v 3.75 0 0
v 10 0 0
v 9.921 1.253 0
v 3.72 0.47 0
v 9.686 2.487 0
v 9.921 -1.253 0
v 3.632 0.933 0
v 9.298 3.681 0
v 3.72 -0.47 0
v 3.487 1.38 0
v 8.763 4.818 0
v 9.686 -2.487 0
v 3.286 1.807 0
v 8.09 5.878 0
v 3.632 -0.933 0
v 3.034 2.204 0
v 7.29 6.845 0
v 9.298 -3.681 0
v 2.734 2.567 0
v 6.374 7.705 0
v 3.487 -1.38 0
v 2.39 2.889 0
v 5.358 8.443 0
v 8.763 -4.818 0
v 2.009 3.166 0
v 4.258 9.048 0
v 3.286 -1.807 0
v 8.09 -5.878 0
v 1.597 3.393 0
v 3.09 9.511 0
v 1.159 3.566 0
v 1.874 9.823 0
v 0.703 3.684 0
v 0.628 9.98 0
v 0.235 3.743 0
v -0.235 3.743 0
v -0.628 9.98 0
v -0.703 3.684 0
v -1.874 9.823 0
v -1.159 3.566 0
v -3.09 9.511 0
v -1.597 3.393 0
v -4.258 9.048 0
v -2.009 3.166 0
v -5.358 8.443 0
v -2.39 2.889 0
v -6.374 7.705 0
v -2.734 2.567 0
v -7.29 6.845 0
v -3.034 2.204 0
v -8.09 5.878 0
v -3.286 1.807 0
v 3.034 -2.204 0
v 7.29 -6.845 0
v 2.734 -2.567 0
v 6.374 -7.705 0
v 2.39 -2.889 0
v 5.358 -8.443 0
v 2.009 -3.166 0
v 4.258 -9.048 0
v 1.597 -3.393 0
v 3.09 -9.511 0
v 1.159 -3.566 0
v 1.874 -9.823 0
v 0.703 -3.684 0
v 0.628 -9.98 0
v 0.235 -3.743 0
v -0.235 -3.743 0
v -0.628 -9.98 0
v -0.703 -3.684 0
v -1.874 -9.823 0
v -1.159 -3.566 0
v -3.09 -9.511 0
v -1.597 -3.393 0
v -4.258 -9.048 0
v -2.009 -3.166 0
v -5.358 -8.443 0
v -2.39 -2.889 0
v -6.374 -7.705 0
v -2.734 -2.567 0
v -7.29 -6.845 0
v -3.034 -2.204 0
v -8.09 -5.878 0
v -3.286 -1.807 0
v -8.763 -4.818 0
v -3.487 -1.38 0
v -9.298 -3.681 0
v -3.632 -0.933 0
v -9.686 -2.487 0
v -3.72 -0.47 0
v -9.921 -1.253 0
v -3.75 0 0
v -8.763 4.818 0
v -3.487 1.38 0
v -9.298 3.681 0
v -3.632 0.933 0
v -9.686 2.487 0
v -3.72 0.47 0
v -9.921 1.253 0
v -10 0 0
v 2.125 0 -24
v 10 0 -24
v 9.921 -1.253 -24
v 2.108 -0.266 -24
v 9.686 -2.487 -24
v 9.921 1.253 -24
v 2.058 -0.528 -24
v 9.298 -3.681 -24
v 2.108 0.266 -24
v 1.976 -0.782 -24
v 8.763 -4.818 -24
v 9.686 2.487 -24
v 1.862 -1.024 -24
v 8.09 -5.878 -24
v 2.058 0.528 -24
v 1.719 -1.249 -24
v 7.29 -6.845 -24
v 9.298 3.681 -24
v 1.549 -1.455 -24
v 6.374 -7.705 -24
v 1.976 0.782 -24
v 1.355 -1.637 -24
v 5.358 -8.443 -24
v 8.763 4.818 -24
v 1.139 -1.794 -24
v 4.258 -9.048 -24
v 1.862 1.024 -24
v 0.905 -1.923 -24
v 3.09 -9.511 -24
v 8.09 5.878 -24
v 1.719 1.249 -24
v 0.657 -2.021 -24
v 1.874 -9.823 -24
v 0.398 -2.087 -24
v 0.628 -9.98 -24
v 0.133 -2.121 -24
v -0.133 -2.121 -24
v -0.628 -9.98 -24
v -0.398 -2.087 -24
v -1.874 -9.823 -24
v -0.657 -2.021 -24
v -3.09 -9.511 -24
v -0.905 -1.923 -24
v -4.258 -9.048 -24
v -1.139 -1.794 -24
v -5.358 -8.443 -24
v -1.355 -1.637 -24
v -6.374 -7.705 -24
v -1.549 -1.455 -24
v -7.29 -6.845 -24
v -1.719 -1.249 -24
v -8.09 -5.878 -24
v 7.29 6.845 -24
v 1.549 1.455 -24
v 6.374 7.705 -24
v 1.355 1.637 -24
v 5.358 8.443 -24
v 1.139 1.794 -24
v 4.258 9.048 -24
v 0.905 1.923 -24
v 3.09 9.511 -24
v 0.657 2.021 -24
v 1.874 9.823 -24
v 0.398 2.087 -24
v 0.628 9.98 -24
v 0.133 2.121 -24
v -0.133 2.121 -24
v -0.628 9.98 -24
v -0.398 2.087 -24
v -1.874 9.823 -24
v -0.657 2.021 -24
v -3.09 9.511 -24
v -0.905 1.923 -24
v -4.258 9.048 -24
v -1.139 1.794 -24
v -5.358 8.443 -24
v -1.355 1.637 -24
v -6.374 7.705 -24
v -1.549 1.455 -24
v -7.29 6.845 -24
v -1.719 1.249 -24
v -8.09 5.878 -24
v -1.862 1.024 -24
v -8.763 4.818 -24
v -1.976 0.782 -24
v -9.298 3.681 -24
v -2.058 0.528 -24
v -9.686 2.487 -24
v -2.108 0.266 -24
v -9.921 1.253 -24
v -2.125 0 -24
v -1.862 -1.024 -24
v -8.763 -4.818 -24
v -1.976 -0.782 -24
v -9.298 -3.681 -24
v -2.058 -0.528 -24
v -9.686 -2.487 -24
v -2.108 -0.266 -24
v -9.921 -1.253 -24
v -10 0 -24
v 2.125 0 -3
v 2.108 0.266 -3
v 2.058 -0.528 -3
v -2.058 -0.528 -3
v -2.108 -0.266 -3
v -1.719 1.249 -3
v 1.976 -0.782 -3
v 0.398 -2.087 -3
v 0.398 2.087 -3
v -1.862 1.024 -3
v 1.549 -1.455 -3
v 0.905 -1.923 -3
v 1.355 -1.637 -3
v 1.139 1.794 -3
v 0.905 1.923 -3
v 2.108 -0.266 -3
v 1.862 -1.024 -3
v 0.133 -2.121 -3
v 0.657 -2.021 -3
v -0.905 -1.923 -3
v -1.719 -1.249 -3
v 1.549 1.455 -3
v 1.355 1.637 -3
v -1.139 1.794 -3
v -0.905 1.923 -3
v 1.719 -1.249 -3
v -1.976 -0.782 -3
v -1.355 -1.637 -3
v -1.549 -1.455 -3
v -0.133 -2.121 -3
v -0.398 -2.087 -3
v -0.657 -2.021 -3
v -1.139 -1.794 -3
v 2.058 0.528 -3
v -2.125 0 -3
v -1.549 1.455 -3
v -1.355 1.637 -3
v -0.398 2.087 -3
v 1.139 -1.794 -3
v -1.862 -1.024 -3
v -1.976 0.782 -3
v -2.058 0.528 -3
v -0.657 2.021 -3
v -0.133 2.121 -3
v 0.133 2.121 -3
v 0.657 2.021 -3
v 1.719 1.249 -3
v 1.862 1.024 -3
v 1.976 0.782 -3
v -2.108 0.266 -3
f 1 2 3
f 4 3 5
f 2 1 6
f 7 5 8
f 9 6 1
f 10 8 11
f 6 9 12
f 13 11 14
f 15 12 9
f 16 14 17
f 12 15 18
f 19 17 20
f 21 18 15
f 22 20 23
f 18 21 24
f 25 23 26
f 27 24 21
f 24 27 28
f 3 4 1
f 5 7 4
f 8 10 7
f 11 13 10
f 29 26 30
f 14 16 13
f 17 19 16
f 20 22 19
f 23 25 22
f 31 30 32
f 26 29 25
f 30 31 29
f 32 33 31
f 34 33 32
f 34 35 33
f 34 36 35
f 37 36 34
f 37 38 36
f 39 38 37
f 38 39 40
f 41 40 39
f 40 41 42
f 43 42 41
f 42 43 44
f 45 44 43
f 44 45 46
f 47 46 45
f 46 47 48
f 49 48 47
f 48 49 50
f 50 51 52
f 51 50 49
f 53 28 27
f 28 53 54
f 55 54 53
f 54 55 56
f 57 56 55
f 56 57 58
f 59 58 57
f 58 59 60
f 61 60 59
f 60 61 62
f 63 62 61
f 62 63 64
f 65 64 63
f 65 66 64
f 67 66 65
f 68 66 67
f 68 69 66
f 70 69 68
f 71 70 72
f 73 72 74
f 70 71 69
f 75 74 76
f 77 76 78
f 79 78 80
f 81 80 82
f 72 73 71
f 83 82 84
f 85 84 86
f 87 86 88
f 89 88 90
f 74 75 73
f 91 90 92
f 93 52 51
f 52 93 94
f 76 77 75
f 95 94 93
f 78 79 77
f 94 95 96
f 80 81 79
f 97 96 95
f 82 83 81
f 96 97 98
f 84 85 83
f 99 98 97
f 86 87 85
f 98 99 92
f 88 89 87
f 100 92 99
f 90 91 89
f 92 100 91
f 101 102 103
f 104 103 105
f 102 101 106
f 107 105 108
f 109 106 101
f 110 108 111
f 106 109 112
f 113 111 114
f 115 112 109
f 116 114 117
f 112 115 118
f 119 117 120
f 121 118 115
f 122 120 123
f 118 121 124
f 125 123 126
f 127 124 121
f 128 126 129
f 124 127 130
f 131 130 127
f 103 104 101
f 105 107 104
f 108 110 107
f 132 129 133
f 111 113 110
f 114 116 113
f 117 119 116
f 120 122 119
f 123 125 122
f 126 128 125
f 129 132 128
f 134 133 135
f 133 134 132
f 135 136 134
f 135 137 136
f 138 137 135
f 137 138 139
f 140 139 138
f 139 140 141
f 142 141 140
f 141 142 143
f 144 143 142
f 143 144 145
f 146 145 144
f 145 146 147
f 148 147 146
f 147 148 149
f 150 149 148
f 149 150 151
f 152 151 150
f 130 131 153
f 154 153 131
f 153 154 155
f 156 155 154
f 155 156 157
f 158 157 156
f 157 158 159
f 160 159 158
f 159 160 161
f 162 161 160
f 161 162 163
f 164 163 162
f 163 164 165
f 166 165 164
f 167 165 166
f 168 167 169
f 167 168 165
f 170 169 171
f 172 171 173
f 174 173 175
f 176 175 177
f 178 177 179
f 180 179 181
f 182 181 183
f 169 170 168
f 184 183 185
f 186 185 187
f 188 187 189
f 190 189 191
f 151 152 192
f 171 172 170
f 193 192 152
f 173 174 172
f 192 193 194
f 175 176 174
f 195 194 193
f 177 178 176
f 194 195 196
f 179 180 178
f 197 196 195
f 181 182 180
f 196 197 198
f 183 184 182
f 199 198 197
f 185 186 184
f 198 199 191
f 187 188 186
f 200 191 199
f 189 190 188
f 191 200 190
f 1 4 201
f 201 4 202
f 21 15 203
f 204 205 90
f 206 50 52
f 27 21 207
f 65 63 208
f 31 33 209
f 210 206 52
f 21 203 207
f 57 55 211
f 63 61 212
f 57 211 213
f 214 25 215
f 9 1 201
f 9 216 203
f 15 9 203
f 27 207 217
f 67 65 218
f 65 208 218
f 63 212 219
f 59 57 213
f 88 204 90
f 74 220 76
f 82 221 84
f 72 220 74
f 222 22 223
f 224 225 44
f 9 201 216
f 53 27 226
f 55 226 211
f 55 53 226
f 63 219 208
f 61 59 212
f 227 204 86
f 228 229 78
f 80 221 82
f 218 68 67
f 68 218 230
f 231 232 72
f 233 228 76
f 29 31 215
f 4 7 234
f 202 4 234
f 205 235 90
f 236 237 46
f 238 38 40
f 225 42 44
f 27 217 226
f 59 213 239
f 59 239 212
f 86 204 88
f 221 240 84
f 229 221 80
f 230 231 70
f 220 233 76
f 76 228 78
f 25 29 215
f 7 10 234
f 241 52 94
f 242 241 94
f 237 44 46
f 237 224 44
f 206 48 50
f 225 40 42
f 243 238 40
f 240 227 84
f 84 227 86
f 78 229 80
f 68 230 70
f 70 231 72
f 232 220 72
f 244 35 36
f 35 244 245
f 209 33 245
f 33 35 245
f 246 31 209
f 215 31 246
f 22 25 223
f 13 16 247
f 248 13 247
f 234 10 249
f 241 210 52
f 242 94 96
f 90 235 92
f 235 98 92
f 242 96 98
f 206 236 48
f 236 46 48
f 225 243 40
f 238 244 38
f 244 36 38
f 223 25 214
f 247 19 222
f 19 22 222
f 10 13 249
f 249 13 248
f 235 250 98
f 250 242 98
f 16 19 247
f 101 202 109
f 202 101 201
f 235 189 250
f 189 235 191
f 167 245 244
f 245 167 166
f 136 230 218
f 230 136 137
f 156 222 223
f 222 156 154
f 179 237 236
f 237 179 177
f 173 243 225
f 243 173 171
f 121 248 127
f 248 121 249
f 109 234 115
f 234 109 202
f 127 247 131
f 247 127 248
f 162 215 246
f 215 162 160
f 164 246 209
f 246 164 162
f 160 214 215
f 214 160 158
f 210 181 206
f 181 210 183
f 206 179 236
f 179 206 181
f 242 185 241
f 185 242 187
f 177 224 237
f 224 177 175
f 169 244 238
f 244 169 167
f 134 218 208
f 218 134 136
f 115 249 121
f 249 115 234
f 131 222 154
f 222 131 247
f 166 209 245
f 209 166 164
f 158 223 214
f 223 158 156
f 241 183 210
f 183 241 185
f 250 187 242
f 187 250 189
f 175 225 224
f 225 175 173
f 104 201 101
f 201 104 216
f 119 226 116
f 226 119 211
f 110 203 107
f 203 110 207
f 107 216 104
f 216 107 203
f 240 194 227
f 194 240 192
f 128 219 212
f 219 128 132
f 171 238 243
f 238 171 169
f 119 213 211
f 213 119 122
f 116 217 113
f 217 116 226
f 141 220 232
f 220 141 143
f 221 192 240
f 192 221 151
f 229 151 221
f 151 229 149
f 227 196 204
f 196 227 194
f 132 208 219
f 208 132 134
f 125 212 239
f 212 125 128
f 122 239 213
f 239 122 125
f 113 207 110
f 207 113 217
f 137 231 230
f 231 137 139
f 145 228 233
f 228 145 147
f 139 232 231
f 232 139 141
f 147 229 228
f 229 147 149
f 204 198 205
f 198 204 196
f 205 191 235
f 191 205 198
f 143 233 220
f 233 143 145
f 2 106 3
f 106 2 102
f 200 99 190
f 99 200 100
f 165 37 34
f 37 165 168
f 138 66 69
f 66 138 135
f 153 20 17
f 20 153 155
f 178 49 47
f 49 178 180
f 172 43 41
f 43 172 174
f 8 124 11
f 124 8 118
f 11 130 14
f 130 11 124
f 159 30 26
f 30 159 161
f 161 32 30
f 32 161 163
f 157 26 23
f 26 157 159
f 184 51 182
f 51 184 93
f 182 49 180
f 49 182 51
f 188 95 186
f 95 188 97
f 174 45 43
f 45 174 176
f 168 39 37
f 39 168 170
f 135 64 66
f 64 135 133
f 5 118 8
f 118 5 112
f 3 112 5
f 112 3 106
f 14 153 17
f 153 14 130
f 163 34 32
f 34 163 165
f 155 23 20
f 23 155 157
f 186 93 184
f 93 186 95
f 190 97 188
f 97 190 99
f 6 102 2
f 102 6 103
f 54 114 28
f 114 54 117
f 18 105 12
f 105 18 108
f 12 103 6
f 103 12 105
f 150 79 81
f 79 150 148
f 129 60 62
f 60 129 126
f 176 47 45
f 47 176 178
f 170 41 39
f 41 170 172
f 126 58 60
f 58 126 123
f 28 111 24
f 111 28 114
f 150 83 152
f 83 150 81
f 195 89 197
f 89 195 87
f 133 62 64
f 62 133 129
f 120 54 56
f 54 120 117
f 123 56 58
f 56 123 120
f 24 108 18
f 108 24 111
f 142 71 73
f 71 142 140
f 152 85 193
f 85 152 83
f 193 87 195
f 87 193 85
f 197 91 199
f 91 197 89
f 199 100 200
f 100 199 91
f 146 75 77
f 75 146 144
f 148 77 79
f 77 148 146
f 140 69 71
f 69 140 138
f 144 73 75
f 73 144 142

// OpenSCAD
$fn = 50;


difference() {
	union() {
		translate(v = [0, 0, -24.0000000000]) {
			cylinder(h = 24, r = 10.0000000000);
		}
	}
	union() {
		translate(v = [0, 0, 0]) {
			rotate(a = [0, 0, 0]) {
				difference() {
					union() {
						#translate(v = [0, 0, -24.0000000000]) {
							cylinder(h = 24, r = 2.0000000000);
						}
						#translate(v = [0, 0, -3]) {
							cylinder(h = 3, r = 10.0000000000, r1 = 2.1250000000, r2 = 3.7500000000);
						}
						#translate(v = [0, 0, -24.0000000000]) {
							cylinder(h = 24, r = 2.1250000000);
						}
						#translate(v = [0, 0, -24.0000000000]) {
							cylinder(h = 24, r = 2.0000000000);
						}
					}
					union();
				}
			}
		}
	}
}
